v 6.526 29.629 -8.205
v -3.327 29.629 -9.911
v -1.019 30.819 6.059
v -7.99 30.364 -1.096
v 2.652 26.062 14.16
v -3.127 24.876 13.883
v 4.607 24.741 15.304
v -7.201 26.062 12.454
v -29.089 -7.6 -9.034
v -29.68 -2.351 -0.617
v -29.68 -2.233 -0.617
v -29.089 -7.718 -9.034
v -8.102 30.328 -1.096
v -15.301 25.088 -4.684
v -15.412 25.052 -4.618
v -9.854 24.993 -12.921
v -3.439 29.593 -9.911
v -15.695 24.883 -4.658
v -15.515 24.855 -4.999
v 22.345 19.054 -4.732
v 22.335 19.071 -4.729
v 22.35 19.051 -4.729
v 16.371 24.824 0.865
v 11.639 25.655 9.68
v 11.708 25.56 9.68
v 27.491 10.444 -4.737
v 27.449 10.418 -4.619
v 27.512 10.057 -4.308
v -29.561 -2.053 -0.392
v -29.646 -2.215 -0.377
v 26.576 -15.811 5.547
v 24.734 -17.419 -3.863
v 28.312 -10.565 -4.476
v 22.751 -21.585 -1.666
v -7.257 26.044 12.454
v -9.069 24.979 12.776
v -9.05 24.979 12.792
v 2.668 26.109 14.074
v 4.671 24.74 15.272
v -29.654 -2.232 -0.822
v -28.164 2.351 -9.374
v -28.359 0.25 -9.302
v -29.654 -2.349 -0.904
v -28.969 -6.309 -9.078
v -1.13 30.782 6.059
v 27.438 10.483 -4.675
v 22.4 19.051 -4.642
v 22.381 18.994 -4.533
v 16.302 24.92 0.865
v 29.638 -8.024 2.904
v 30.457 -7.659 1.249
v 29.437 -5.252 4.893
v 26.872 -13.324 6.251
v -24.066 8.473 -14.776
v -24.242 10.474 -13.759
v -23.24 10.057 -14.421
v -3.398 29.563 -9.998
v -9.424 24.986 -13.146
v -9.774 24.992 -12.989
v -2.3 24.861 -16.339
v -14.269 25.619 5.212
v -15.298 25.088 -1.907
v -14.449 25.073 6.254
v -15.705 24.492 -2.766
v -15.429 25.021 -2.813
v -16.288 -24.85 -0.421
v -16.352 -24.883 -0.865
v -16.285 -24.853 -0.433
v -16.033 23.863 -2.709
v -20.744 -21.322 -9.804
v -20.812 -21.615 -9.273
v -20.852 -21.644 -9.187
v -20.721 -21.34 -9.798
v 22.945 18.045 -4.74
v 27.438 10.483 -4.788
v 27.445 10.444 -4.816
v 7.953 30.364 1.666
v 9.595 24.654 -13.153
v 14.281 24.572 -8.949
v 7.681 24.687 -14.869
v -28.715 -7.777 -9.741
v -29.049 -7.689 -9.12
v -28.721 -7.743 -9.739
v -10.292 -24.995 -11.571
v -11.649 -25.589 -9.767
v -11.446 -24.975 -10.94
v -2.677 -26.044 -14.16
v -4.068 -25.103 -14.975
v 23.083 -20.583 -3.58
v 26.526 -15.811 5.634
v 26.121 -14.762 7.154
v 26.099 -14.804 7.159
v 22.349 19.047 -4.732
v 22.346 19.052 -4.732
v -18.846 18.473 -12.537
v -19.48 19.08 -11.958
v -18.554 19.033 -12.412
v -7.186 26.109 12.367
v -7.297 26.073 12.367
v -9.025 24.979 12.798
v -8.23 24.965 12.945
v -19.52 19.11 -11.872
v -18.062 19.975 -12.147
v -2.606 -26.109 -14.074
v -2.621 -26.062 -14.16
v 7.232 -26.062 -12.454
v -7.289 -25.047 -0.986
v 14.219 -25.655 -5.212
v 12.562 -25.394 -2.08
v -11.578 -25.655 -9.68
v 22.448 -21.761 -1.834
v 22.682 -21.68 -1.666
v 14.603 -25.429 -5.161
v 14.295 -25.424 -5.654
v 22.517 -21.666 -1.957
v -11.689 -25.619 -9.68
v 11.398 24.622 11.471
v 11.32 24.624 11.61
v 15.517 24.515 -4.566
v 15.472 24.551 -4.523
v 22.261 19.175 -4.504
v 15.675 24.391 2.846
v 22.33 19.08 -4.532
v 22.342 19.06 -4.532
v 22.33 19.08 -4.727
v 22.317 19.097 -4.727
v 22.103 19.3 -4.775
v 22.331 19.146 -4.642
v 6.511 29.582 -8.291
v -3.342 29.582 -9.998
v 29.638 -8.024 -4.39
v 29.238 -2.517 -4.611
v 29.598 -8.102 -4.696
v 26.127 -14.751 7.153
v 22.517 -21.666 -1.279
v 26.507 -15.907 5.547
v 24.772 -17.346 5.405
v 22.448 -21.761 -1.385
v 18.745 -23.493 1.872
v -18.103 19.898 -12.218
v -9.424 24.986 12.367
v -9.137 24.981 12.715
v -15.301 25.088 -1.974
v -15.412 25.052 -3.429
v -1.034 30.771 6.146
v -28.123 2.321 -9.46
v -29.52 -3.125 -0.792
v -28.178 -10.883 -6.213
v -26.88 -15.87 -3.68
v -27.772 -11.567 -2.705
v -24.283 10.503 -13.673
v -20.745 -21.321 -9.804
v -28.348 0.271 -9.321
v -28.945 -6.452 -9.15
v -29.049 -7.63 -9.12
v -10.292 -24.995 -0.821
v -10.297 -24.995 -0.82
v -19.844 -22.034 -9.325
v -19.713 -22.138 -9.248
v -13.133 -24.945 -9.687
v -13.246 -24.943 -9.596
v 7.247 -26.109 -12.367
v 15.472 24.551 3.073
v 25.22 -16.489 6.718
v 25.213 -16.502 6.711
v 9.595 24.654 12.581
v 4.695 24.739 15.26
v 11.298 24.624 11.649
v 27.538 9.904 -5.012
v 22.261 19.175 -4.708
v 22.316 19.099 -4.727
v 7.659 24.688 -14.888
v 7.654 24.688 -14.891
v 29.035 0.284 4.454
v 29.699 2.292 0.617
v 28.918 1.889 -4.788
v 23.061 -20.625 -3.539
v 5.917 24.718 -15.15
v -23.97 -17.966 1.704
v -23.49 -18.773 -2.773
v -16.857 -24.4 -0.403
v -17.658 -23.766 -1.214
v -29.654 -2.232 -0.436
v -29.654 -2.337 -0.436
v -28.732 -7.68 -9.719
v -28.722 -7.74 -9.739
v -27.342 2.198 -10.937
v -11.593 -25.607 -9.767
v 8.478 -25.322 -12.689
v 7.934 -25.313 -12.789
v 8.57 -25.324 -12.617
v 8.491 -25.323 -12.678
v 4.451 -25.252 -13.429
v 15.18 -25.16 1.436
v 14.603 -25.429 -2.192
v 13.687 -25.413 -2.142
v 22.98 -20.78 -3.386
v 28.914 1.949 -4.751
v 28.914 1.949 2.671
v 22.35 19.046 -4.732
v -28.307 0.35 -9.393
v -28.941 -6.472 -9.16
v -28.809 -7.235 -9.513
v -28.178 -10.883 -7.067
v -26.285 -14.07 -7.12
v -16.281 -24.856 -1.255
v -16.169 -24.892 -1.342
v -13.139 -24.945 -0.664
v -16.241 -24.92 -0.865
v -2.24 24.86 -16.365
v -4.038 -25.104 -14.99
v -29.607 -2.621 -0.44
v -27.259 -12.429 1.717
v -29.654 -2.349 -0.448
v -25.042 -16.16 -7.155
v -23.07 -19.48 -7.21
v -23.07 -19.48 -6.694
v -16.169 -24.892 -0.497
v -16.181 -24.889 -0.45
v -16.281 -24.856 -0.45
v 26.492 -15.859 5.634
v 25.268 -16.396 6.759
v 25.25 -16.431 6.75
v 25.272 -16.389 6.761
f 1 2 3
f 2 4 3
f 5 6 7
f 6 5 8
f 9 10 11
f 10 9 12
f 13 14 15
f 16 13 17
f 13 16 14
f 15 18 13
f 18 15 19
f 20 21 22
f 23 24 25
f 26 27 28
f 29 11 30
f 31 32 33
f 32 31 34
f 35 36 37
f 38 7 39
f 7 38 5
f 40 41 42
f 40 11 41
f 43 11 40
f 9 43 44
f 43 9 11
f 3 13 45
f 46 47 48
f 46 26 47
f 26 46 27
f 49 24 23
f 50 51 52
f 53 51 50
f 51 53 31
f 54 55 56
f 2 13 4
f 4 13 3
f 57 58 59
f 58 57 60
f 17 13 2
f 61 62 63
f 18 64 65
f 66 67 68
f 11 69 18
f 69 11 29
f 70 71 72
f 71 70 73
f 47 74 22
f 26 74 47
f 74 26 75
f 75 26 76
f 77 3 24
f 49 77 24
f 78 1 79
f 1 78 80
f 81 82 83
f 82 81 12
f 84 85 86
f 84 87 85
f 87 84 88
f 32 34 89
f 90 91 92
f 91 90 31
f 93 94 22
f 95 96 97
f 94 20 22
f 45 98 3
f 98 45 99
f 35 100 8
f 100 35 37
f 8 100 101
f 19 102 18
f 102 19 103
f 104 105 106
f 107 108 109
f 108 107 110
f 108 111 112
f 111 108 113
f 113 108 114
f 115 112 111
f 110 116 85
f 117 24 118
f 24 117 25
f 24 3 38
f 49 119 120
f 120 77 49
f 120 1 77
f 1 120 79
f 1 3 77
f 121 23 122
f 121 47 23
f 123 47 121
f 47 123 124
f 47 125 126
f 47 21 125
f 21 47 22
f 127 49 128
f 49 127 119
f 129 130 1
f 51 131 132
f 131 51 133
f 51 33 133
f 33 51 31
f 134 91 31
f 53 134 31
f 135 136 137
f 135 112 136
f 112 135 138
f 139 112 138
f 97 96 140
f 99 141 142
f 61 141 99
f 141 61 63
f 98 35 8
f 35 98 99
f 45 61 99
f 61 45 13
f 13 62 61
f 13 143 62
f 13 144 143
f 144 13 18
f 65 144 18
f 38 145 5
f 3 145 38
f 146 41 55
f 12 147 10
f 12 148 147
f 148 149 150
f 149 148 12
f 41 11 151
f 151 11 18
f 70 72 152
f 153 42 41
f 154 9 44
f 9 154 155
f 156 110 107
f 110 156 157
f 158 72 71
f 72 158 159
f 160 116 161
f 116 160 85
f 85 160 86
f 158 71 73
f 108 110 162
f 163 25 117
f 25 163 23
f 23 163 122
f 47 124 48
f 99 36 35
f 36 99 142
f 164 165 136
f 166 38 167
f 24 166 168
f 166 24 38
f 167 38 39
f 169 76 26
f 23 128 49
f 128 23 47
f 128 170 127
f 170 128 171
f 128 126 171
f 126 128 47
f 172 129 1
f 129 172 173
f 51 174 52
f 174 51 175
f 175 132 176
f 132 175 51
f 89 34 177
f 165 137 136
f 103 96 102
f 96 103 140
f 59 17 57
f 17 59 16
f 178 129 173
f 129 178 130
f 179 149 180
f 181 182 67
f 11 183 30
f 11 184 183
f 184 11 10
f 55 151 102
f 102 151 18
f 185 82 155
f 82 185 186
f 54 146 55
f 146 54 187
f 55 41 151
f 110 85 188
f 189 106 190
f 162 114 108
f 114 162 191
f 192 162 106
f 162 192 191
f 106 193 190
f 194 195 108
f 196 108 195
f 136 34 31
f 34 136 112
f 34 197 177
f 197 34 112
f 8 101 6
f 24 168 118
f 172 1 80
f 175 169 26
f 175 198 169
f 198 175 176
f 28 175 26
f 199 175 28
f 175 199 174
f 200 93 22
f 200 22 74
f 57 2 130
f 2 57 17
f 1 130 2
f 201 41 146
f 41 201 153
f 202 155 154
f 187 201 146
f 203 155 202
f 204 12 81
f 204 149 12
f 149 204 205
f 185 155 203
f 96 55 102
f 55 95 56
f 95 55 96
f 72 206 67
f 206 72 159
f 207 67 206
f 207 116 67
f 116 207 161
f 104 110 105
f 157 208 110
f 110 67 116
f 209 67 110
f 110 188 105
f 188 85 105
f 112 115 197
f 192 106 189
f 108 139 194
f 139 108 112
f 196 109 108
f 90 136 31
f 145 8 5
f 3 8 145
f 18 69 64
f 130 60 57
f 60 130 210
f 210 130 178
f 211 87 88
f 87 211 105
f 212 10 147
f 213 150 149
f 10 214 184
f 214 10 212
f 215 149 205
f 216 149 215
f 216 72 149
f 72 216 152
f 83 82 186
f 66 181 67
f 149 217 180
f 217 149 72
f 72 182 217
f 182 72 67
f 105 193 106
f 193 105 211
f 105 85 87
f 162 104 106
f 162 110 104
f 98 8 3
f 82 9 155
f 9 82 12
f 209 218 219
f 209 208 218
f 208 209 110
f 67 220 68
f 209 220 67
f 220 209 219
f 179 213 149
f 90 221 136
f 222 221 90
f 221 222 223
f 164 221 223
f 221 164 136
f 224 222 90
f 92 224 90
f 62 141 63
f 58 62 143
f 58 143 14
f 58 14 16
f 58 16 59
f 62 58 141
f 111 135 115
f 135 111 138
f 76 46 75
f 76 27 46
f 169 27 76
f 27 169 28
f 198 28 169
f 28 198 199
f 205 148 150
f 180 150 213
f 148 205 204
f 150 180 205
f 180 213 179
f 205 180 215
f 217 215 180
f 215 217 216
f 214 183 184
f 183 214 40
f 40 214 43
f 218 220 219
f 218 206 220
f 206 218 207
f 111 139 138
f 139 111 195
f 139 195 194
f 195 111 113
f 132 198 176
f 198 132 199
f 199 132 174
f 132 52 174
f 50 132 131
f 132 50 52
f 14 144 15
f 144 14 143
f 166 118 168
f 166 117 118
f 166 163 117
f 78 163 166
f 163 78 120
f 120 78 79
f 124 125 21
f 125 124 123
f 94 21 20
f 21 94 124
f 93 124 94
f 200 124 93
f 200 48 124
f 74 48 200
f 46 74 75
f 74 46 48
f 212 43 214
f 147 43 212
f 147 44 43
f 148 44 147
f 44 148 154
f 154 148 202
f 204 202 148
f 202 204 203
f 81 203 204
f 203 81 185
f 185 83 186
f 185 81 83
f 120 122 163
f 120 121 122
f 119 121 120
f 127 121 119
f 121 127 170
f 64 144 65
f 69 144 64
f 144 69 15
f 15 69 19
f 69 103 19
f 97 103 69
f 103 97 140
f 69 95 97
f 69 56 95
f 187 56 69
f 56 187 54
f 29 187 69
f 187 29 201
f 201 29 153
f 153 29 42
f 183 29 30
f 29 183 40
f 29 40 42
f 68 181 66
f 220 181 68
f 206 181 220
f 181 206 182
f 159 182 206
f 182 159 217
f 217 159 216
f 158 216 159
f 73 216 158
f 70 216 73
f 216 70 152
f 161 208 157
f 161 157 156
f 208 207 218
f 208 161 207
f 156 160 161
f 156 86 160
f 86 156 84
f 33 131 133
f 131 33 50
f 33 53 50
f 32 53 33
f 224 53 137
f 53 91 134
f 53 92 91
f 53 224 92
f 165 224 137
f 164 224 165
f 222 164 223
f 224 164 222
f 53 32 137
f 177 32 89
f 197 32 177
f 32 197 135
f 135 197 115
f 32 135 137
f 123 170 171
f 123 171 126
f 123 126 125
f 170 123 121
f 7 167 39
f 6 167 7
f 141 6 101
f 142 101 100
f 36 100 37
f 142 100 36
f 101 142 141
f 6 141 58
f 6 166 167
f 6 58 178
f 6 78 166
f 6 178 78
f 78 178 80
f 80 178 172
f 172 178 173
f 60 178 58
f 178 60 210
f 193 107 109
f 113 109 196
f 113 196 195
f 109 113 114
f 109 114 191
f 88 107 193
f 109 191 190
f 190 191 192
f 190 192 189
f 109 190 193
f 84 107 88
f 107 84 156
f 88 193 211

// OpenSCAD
// Auto-generated OpenSCAD file

    inner_points = 10*[[2.2229828118084516, 1.9079774760679746, 7.77589516412924e-13], [-2.809733759198869, -1.0823860047076879, -7.725143262255779e-13], [2.733797877554801, 1.0482868522930302, 7.725143262255779e-13], [-2.29891869345252, -1.9420766284826323, -7.77589516412924e-13], [0.3918773710660971, 0.23835795666625434, -2.92705098312471], [-0.46781325270884755, -0.2724571090800944, -2.9270509831249747], [0.3918773710647796, 0.23835795666543694, 2.9270509831249747], [-0.46781325271016505, -0.2724571090809118, 2.92705098312471], [-1.5331496812097525, 2.4993087092964017, -0.4999999999999851], [1.4572137995659098, -2.533407861710919, -0.5000000000000149], [-1.5331496812099776, 2.499308709296262, 0.5000000000000149], [1.4572137995656846, -2.533407861711059, 0.4999999999999851], [1.5440657299857556, 2.4456312643083966, -0.4999999999993001], [-2.957332815719052, -0.22903114387051052, -0.5000000000006866], [2.8813969340752084, 0.19493199145599246, -0.49999999999931344], [-1.6200016116295983, -2.479730416722914, -0.5000000000006999], [1.5440657299855305, 2.4456312643082567, 0.5000000000006999], [-2.9573328157192766, -0.22903114387064996, 0.49999999999931344], [2.8813969340749837, 0.19493199145585302, 0.5000000000006866], [-1.6200016116298235, -2.479730416723054, 0.4999999999993001], [0.8319741627315825, 1.0814613377252358, -2.618033988749546], [-1.4187251101208207, -0.2558698663642176, -2.618033988750239], [1.3427892284779315, 0.22177071395029133, -2.6180339887495507], [-0.907910044374472, -1.1155604901391623, -2.618033988750244], [0.8319741627304039, 1.0814613377245046, 2.618033988750244], [-1.4187251101219993, -0.2558698663649488, 2.6180339887495507], [1.3427892284767529, 0.22177071394956013, 2.618033988750239], [-0.9079100443756506, -1.1155604901398934, 2.618033988749546], [-0.9454538330237207, 2.489057229518432, -1.3090169943748018], [-1.805144456798665, 1.9782421637720828, -1.3090169943750665], [1.7292085751551864, -2.012341316186375, -1.3090169943748284], [0.8695179513802419, -2.523156381932724, -1.3090169943750931], [-0.94545383302431, 2.4890572295180666, 1.3090169943750931], [-1.8051444567992543, 1.9782421637717174, 1.3090169943748284], [1.7292085751545971, -2.0123413161867405, 1.3090169943750665], [0.8695179513796526, -2.5231563819330893, 1.3090169943748018], [0.9563698818000872, 2.455882744086592, -1.3090169943743784], [-2.6853380401297753, 0.29203540165403374, -1.3090169943755001], [2.6094021584862968, -0.3261345540683255, -1.3090169943743948], [-1.0323057634435657, -2.4899818965008835, -1.3090169943755166], [0.9563698817994977, 2.4558827440862263, 1.3090169943755166], [-2.685338040130365, 0.29203540165366804, 1.3090169943743948], [2.609402158485707, -0.3261345540686912, 1.3090169943755001], [-1.0323057634441553, -2.489981896501249, 1.3090169943743784], [0.6843751062111746, 1.9348161985622732, -2.1180339887494597], [-2.097642191943743, 0.28178392187606416, -2.118033988750317], [2.0217063103006283, -0.3158830742901302, -2.118033988749473], [-0.7603109878542894, -1.9689153509763393, -2.11803398875033], [0.6843751062102214, 1.9348161985616816, 2.11803398875033], [-2.0976421919446966, 0.28178392187547274, 2.118033988749473], [2.021706310299675, -0.3158830742907216, 2.118033988750317], [-0.7603109878552426, -1.9689153509769308, 2.1180339887494597], [0.005458024388253095, 2.472469986802555, -1.6180339887495376], [-2.245241248464151, 1.1351387827131016, -1.6180339887502309], [2.169305366820811, -1.1692379351273074, -1.618033988749559], [-0.08139390603159274, -2.5065691392167606, -1.6180339887502522], [0.005458024387524789, 2.4724699868021034, 1.6180339887502522], [-2.2452412484648794, 1.1351387827126498, 1.618033988749559], [2.169305366820083, -1.1692379351277593, 1.6180339887502309], [-0.08139390603232105, -2.5065691392172122, 1.6180339887495376], [-0.03809330901262526, 1.5669381064022805, -2.703444185374642], [-1.429101958090084, 0.7404219680591758, -2.7034441853750706], [-0.038093309013842065, 1.5669381064015255, 2.7034441853750844], [-1.4291019580913007, 0.7404219680584209, 2.703444185374656], [2.5137216919096725, -1.6455455015429499, -0.8090169943746006], [2.5137216919093084, -1.645545501543176, 0.8090169943752943], [-0.7170103908355473, 2.1045918946425624, -2.2034441853747198], [-1.5767010146104916, 1.5937768288962129, -2.2034441853749844], [-0.717010390836539, 2.1045918946419473, 2.2034441853750066], [-1.5767010146114833, 1.5937768288955976, 2.203444185374742], [2.9538184835751577, -0.8024421204839683, -0.4999999999994364], [2.9538184835749326, -0.802442120484108, 0.5000000000005637], [-0.4781901006781107, 0.723834725343299, -3.012461179749806], [-0.47819010067946655, 0.7238347253424577, 3.012461179749815], [2.241726916320396, -2.166612047067494, 2.129075466538872e-13]];

    outer_points = 10*[[0.4830693605864632, 0.897366776381505, -2.7890866460763384], [-0.40484035713075717, -1.786116072619009, 2.3374176174108023], [0.40484035713075717, 1.786116072619009, -2.3374176174108023], [-0.4830693605864632, -0.897366776381505, 2.7890866460763384], [2.9599481176661713, 0.22919679777286445, 0.061671925762529], [2.8082750305152753, -0.22919679777286445, 0.9373834000488804], [-2.8082750305152753, 0.22919679777286445, -0.9373834000488804], [-2.9599481176661713, -0.22919679777286445, -0.061671925762529], [0.7216453547367727, -2.601414501303498, -1.2367287625857242], [0.2636847917889711, 2.601414501303498, 1.4073877862192727], [-0.2636847917889711, -2.601414501303498, -1.4073877862192727], [-0.7216453547367727, 2.601414501303498, 1.2367287625857242], [0.9921534655790782, 0.03670208085032334, -2.7985553265591845], [0.19798287089973665, -2.363477945877658, 1.786729481480711], [0.7873472756260071, 2.363477945877658, -1.616070457847162], [-0.006823319053334498, -0.03670208085032334, 2.9692143501927335], [0.006823319053334498, 0.03670208085032334, -2.9692143501927335], [-0.7873472756260071, -2.363477945877658, 1.616070457847162], [-0.19798287089973665, 2.363477945877658, -1.786729481480711], [-0.9921534655790782, -0.03670208085032334, 2.7985553265591845], [2.817284964142, 0.15567035856324335, -0.9253645919832395], [2.420199666802329, -1.0444196548007474, 1.3672778120367086], [2.7390559606862936, 1.0444196548007474, -0.4736955633177039], [2.341970663346623, -0.15567035856324335, 1.8189468407022442], [-2.341970663346623, 0.15567035856324335, -1.8189468407022442], [-2.7390559606862936, -1.0444196548007474, 0.4736955633177039], [-2.420199666802329, 1.0444196548007474, -1.3672778120367086], [-2.817284964142, -0.15567035856324335, 0.9253645919832395], [1.5704566404006748, -2.09757906725447, -1.3969450436754474], [1.4187835532497788, -2.5559726628001993, -0.5212335693890959], [1.1608442604945326, 2.5559726628001993, 0.9680246937485981], [1.0091711733436366, 2.09757906725447, 1.8437361680349498], [-1.0091711733436366, -2.09757906725447, -1.8437361680349498], [-1.1608442604945326, -2.5559726628001993, -0.9680246937485981], [-1.4187835532497788, 2.5559726628001993, 0.5212335693890959], [-1.5704566404006748, 2.09757906725447, 1.3969450436754474], [1.7376398471337438, -0.4671333531987044, -2.362206944743508], [1.0951423396052982, -2.4089197843809567, 1.3473663890100358], [1.4844854741390132, 2.4089197843809567, -0.9005752646505334], [0.8419879666105676, 0.4671333531987044, 2.8089980691030103], [-0.8419879666105676, -0.4671333531987044, -2.8089980691030103], [-1.4844854741390132, -2.4089197843809567, 0.9005752646505334], [-1.0951423396052982, 2.4089197843809567, -1.3473663890100358], [-1.7376398471337438, 0.4671333531987044, 2.362206944743508], [2.43477804564675, -0.42169151469540556, -1.64671175154688], [1.9439536252692002, -1.9050843503319292, 1.187150107920313], [2.2299718556936785, 1.9050843503319292, -0.46422688283485714], [1.7391474353161291, 0.42169151469540556, 2.369634976632336], [-1.7391474353161291, -0.42169151469540556, -2.369634976632336], [-2.2299718556936785, -1.9050843503319292, 0.46422688283485714], [-1.9439536252692002, 1.9050843503319292, -1.187150107920313], [-2.43477804564675, 0.42169151469540556, 1.64671175154688], [1.9585320041136212, -1.282356210226587, -1.8268394556632752], [1.5614467067739504, -2.4824462235905775, 0.4658029483566726], [1.6271486276631848, 2.4824462235905775, 0.08646125309523445], [1.230063330323514, 1.282356210226587, 2.379103657115182], [-1.230063330323514, -1.282356210226587, -2.379103657115182], [-1.6271486276631848, -2.4824462235905775, -0.08646125309523445], [-1.5614467067739504, 2.4824462235905775, -0.4658029483566726], [-1.9585320041136212, 1.282356210226587, 1.8268394556632752], [2.893023683190555, -0.839453603454857, -0.8621827381462208], [2.6476114730017803, -1.5811500212731189, 0.5547481915873755], [-2.4345464274086126, -0.839453603454857, -1.7849170283939584], [-2.6799586375973874, -1.5811500212731189, -0.36798609866036214], [0.7922100146892382, 3.026926073605983, 0.16658119750574993], [-0.8020876525293293, 3.026926073605983, -0.10955090322020358], [2.4167776416574265, -1.7001182989860388, -1.0423104422626164], [2.26510455450653, -2.1585118945317676, -0.166598967976265], [-1.9254623224159977, -1.7001182989860388, -1.7943857088768054], [-2.077135409566894, -2.1585118945317676, -0.9186742345904539], [0.6495468611650667, 2.9533996343963618, -0.8204553202400185], [-0.33578328536067714, 2.9533996343963618, -0.9911143438735673], [3.0356868367147265, -0.7659271642452358, 0.12485377959954758], [-2.900850794577265, -0.7659271642452358, -0.9033535877405948], [-0.10494945401632327, 3.0723679121092817, 0.6059442899764248]];

    // Convex hull for inner set (I)
    module inner_hull() {
        hull() {
            for (p = inner_points) {
                translate(p) sphere(r=0.1);
            }
        }
    }

    // Convex hull for outer set (O) minus inner hull (O \ I)
    module outer_minus_inner() {
        difference() {
            hull() {
                for (p = outer_points) {
                    translate(p) sphere(r=0.1);
                }
            }
            inner_hull(); // Subtract inner hull
        }
    }

    // Convex hull for outer set (O) minus all translated inner hulls
    module outer_minus_AllTranslationInner() {
        difference() {
            hull() {
                for (p = outer_points) {
                    translate(p) sphere(r=0.1);
                }
            }
            hull() {
                translate([0,0,50]) inner_hull();
                translate([0,0,-50]) inner_hull();
            }; // Subtract translated inner hulls
        }
    }

    // Difference between outer_minus_inner and outer_minus_AllTranslationInner
    module outer_minus_inner_diff() {
        difference() {
            // Outer minus inner
            difference() {
                hull() {
                    for (p = outer_points) {
                        translate(p) sphere(r=0.1);
                    }
                }
                inner_hull();
            }

            // Subtract Outer minus AllTranslationInner
            difference() {
                hull() {
                    for (p = outer_points) {
                        translate(p) sphere(r=0.1);
                    }
                }
                hull() {
                    translate([0,0,50]) inner_hull();
                    translate([0,0,-50]) inner_hull();
                };
            }
        }
    }

    // Rendering all with colors applied
    color([0, 1, 0, 1]) outer_minus_AllTranslationInner(); // Opaque green
    
